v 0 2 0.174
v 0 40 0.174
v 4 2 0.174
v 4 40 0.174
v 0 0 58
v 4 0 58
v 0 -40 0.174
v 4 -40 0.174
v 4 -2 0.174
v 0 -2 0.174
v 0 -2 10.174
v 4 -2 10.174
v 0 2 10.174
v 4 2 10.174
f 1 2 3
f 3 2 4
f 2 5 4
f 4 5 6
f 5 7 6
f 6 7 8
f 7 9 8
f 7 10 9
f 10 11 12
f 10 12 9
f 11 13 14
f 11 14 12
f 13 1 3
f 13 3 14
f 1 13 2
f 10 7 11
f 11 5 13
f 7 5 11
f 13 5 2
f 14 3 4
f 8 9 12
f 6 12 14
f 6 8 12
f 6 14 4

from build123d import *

# Parameters (mm, degrees)
PAD_DEPTH = 4


with BuildPart() as part:
    # Sketch → Pad (new body)
    with BuildSketch(Plane.YZ):
        Polygon((0, 58), (-40, 0.173901), (-2, 0.173901), (-2, 10.173901), (2, 10.173901), (2, 0.173901), (40, 0.173901), align=None)
    extrude(amount=PAD_DEPTH)


solid = part.part
